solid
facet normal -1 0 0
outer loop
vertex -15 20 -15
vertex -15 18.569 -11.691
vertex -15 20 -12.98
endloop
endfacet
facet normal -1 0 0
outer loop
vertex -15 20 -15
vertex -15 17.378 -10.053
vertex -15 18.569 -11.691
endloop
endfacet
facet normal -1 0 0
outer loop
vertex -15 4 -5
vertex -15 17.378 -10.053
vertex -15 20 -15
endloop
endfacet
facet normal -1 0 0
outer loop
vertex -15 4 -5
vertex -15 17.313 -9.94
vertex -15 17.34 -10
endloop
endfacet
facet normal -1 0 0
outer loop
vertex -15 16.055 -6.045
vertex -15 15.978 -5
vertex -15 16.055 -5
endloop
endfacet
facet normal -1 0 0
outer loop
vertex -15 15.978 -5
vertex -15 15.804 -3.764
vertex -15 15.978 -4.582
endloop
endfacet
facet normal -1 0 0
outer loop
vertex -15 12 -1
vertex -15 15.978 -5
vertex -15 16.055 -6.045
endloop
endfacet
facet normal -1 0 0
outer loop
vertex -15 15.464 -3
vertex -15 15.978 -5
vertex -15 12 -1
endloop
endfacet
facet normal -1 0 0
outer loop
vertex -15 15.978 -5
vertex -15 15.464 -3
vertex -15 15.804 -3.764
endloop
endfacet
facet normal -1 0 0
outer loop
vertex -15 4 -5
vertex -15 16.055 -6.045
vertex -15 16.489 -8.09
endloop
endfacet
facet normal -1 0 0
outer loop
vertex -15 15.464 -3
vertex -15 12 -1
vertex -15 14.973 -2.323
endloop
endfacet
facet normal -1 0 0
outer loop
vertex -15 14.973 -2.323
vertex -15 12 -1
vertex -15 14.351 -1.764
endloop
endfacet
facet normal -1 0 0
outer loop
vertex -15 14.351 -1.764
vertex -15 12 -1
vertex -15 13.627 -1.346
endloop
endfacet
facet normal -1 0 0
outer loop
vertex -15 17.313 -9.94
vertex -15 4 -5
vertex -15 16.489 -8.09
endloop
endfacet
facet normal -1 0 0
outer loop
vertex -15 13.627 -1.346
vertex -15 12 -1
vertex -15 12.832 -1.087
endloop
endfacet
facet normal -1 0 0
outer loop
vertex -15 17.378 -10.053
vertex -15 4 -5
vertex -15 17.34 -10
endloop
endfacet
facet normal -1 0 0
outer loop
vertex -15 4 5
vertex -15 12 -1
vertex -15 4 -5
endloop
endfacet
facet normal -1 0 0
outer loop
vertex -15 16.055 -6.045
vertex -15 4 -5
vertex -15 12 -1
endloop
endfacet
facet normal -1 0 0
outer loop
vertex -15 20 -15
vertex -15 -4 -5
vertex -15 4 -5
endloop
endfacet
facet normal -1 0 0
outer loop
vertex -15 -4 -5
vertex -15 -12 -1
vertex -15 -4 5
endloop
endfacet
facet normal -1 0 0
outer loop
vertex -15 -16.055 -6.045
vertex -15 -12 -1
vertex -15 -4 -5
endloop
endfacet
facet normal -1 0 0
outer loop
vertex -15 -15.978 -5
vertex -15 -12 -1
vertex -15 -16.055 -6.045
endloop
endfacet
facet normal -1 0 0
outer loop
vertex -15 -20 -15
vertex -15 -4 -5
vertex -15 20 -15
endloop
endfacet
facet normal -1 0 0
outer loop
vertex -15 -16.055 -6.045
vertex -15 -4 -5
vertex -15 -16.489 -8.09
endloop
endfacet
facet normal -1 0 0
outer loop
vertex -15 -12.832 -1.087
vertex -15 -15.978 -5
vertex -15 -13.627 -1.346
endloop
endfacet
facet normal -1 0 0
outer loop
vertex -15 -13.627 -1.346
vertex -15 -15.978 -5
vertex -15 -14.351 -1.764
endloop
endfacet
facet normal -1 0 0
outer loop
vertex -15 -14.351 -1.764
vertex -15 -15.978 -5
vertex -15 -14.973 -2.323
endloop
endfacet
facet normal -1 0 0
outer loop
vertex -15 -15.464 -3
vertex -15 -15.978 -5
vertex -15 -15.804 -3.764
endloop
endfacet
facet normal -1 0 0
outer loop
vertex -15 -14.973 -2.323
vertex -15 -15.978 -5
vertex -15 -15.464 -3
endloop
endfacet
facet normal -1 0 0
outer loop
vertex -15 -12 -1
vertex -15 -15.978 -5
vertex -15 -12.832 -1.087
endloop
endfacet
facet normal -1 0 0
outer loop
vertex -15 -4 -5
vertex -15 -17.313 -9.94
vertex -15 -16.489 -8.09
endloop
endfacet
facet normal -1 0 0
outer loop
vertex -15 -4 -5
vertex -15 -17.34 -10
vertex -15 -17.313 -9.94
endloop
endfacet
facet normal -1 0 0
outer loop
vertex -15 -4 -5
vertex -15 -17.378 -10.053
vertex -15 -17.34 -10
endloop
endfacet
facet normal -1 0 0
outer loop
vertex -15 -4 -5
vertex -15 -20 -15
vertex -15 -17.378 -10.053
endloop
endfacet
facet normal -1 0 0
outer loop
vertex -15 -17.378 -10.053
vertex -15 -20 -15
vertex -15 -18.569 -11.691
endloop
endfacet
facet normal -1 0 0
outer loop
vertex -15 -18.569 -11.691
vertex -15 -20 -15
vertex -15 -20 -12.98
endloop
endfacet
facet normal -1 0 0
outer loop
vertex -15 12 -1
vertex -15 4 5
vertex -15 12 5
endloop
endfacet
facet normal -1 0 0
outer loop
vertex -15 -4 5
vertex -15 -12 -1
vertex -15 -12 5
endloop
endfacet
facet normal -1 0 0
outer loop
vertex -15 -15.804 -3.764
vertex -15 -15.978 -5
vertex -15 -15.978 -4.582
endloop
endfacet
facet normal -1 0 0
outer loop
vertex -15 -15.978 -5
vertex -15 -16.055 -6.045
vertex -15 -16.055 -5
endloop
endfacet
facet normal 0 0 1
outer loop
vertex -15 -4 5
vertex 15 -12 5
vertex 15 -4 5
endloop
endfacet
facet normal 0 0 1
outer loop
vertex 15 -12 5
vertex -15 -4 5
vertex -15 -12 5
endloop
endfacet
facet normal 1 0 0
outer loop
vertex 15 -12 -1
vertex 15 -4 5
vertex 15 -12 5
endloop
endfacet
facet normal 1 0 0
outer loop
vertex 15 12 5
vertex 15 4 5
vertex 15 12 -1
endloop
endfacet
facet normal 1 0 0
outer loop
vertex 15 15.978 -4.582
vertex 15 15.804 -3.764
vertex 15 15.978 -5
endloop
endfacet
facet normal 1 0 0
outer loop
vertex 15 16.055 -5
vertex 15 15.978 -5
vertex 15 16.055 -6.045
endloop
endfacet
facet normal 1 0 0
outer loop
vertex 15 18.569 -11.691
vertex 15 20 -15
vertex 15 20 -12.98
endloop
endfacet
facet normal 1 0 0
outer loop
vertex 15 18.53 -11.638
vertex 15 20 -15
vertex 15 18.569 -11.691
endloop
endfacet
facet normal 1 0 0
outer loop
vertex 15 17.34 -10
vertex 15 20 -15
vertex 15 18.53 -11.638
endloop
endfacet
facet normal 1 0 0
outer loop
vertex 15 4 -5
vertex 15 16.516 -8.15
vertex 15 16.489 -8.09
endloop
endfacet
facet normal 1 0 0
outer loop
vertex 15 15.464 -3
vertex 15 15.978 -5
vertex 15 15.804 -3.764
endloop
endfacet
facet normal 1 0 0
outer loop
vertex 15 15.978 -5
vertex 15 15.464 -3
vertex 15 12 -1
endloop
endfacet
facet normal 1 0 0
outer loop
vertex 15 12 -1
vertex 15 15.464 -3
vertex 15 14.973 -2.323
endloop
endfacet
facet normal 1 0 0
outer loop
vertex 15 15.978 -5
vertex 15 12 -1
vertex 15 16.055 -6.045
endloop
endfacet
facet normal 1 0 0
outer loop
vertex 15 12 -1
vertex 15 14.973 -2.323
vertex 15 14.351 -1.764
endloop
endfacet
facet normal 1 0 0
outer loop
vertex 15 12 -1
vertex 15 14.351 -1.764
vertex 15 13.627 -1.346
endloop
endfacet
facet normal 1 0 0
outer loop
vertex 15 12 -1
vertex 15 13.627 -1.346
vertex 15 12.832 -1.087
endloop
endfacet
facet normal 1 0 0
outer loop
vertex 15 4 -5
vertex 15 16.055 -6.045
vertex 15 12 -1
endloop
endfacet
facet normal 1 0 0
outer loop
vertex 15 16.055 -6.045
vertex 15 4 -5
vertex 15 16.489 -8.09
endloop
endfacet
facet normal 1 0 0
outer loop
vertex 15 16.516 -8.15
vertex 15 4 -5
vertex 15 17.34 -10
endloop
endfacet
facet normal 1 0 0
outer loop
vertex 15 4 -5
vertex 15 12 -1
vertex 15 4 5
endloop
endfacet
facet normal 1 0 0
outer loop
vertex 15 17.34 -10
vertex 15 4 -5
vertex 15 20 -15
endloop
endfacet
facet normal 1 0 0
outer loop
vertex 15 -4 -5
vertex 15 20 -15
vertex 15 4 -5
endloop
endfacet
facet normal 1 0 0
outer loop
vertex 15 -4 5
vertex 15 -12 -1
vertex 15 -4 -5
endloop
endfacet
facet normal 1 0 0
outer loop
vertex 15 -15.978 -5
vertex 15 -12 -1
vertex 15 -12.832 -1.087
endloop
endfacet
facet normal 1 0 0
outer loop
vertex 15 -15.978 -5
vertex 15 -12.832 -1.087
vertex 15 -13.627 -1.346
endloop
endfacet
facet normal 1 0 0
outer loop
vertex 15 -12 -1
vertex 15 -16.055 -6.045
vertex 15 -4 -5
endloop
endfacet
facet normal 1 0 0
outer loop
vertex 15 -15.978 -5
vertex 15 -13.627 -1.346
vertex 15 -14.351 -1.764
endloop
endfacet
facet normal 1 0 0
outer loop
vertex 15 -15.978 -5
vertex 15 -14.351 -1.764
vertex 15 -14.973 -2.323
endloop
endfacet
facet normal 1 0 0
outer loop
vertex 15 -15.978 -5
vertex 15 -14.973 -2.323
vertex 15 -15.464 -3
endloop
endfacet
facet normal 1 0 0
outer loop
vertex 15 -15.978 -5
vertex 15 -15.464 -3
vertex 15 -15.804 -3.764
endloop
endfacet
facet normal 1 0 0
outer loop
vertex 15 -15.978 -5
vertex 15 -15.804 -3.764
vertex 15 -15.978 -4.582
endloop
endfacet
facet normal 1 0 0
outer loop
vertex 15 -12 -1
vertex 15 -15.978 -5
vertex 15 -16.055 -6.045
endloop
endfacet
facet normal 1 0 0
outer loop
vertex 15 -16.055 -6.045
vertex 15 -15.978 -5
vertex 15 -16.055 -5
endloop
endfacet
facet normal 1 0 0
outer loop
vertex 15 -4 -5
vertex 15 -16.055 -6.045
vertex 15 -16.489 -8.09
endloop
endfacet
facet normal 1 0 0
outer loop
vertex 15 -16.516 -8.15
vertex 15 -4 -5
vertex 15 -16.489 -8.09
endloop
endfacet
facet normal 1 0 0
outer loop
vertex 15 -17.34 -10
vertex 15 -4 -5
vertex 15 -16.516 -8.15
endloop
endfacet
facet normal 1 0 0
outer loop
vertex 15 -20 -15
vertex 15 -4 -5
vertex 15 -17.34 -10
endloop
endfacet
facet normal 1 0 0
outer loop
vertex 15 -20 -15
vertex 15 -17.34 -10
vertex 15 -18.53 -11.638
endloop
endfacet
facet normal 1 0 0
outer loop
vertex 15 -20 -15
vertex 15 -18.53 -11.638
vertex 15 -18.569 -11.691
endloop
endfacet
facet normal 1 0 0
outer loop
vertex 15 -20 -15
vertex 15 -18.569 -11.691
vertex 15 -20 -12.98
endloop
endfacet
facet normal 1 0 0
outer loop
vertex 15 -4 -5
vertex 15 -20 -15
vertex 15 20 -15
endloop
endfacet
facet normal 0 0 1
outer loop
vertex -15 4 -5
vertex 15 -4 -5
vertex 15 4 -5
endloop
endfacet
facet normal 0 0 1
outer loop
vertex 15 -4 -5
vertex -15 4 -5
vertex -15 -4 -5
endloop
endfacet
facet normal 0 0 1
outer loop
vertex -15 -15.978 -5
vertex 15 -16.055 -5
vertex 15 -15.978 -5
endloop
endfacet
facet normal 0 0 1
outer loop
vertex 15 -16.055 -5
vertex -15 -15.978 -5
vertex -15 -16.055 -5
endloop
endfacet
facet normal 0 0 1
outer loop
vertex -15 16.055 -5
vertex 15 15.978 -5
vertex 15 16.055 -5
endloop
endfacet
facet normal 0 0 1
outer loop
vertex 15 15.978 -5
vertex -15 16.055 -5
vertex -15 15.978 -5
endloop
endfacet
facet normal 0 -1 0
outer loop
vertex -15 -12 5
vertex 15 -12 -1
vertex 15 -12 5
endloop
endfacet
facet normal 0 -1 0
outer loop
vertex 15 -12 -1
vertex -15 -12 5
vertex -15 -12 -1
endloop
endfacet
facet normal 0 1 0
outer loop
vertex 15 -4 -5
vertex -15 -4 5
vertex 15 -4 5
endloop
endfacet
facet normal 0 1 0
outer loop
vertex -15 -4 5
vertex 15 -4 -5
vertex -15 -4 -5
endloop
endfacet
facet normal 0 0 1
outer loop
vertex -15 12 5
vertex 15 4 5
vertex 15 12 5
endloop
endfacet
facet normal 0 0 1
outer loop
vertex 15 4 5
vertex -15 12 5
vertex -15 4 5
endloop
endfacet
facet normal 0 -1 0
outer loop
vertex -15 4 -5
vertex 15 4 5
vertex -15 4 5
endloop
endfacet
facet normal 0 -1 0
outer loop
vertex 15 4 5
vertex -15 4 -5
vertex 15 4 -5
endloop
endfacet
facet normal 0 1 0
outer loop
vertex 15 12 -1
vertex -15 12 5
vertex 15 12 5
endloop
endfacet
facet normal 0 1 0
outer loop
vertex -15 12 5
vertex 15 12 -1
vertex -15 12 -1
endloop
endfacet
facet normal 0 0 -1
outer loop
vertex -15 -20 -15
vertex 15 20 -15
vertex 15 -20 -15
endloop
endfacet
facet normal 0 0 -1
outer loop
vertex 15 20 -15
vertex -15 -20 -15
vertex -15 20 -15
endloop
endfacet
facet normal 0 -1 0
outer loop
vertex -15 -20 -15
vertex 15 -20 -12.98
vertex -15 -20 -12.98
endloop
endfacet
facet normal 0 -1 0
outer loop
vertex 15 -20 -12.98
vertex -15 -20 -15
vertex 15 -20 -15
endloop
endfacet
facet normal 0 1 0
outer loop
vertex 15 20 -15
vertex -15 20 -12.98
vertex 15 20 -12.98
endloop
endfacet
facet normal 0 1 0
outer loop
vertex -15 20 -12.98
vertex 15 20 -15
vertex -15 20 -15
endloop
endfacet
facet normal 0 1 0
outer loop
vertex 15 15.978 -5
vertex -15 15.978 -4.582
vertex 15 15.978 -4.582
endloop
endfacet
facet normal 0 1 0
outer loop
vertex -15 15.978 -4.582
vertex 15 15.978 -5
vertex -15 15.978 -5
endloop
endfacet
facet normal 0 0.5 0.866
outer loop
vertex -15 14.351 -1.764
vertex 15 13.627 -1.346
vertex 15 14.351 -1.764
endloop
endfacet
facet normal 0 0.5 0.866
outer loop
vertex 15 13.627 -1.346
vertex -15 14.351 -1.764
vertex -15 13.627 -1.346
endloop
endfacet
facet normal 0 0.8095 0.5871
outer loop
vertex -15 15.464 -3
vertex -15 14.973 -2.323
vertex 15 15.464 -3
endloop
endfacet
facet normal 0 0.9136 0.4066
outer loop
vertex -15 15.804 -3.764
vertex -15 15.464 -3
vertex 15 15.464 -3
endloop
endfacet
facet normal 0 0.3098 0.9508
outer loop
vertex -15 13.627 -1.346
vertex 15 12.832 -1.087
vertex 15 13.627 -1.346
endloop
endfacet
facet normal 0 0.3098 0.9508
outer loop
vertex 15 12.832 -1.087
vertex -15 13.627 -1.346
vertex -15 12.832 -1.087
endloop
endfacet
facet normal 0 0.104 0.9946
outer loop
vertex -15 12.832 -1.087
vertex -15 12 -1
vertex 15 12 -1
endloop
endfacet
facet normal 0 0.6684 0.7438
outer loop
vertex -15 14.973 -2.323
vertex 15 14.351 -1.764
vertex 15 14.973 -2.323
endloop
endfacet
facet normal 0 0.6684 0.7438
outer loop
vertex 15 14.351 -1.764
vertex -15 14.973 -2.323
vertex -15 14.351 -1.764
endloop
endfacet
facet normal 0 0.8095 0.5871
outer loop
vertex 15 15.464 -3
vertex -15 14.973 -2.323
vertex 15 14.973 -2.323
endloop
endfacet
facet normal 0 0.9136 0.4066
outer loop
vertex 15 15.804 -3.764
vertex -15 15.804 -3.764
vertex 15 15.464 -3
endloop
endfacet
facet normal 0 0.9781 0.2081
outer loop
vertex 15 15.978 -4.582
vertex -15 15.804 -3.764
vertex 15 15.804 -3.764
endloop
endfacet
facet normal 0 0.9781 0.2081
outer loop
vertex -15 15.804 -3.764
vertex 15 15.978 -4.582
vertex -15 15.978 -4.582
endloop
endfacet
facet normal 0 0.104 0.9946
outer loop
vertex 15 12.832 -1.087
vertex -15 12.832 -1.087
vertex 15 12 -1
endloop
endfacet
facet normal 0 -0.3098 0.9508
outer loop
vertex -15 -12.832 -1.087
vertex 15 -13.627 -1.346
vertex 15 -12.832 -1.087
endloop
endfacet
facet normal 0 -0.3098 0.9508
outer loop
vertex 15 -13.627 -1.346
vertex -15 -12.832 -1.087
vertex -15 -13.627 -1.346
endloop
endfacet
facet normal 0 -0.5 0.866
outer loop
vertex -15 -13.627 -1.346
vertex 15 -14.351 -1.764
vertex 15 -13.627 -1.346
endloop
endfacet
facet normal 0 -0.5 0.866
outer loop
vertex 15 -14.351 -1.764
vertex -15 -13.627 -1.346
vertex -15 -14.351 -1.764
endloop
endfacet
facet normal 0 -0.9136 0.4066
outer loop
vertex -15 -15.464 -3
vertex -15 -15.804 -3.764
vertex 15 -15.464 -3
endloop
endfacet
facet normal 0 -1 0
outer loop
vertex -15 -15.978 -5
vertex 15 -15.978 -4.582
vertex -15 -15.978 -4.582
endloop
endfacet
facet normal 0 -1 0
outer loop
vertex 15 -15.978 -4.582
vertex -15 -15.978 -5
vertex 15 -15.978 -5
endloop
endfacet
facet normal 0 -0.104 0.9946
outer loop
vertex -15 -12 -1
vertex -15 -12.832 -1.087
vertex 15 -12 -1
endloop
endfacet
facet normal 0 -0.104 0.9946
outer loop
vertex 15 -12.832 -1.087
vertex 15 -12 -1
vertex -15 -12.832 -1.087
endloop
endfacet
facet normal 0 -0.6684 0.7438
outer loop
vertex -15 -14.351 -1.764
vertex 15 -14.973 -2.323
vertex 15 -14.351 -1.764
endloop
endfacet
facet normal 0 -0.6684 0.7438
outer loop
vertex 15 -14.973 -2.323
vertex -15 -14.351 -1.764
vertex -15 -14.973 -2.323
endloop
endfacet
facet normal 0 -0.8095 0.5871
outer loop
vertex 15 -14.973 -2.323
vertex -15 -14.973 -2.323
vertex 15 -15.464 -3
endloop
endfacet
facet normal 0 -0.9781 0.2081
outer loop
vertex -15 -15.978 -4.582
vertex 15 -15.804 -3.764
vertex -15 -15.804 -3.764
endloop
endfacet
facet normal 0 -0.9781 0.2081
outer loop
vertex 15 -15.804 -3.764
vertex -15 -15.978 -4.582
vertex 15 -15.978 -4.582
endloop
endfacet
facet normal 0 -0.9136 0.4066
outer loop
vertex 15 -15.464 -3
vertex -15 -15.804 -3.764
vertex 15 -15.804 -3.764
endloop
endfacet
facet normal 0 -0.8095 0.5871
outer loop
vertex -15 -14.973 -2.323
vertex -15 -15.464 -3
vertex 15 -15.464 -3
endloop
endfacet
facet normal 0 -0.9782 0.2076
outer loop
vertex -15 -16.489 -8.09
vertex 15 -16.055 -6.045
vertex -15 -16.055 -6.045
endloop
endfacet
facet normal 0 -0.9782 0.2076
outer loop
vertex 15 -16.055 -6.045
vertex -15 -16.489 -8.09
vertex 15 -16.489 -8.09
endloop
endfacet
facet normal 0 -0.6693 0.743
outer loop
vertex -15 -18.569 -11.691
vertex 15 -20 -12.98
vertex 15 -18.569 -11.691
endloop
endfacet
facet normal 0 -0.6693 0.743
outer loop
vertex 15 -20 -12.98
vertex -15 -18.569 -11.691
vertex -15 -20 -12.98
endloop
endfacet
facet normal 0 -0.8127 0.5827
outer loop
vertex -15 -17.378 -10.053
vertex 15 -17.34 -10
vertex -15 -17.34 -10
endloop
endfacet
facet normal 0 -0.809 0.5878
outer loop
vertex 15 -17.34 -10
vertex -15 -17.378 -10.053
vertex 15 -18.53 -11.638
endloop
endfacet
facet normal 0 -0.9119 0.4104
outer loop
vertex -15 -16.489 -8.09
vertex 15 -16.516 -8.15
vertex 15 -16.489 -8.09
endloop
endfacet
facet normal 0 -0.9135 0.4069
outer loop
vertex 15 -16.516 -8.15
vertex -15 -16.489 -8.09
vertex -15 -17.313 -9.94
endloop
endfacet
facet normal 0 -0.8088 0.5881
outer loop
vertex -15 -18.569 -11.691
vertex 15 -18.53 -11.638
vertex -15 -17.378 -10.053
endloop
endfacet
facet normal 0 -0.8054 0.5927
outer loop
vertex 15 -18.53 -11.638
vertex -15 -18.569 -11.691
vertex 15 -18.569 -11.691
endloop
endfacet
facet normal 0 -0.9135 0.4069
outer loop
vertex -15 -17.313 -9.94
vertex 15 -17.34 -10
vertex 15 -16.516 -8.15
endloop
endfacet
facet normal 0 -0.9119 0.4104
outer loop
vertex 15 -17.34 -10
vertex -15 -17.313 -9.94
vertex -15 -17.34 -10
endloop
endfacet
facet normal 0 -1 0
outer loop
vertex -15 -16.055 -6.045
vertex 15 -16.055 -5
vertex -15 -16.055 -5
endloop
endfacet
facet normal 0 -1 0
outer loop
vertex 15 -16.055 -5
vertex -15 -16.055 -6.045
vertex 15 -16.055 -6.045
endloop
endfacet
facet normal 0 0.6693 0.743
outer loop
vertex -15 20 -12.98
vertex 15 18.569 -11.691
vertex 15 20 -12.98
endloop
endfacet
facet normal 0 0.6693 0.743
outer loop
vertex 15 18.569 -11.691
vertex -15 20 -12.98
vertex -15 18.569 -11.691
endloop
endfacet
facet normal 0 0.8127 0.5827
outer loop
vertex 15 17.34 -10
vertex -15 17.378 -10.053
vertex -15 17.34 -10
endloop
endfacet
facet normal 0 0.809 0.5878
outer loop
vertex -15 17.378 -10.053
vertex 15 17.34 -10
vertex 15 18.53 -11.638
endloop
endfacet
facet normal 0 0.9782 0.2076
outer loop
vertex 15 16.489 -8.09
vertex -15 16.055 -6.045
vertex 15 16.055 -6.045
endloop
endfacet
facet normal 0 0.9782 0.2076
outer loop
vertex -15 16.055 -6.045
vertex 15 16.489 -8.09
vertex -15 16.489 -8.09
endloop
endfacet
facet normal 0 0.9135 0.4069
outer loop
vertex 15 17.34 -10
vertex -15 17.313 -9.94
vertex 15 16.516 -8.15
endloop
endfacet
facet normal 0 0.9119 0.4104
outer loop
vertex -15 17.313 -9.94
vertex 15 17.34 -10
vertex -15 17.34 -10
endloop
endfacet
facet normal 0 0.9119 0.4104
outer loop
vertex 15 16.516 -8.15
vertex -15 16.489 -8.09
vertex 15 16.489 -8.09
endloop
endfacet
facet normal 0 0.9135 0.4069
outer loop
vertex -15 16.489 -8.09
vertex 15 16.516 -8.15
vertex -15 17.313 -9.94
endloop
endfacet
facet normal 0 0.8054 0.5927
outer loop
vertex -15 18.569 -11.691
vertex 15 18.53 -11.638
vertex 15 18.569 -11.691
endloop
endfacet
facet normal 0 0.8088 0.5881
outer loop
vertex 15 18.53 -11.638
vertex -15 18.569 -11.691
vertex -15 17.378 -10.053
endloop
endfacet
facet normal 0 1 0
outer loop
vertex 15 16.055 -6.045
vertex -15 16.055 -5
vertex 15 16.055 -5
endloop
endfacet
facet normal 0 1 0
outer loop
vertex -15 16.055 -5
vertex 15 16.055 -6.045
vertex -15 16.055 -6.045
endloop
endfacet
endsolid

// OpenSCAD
// Soportes antivibración impresora 3D
// PPF 2016 - Oct
// en mm

// PARAMETRIZACION
dimGripX =30; // Por defecto: 30
dimGripY =8; // Por defecto: 8
dimGripZ =10; // Por defecto: 10

delta=2; // Por defecto: 2

dimBaseX = dimGripX; // Por defecto: 30
dimBaseY = dimGripY * 5; // Por defecto: 8*5=40
dimBaseZ = dimGripZ; // Por defecto: 10

h=dimGripX; 
r=dimGripY/2;

// RENDERIZACION DE LA PIEZA
difference(){

union(){  // Bloque principal (pestañas+base+refuerzos)
// Pestañas de agarre
color("red")
translate ([0,-dimGripY,0])
union(){
cube ([dimGripX, dimGripY, dimGripZ],true); // pestaña 1
translate ([0,2*dimGripY,0])
cube ([dimGripX, dimGripY, dimGripZ],true); // pestaña 2
}

// Base de soporte
color("yellow")
translate ([0,0,-dimGripZ])
cube ([dimBaseX, dimBaseY, dimBaseZ],true);

// Refuerzos
color("yellow")
translate ([0,3*r,-5])
rotate ([0,90,0])
cylinder (h,r=r,$fn=30, center=true); // refuerzo 1

translate ([0,-3*r,-dimGripZ/2])
rotate ([0,90,0])
cylinder (h,r=r,$fn=30, center=true); // refuezo 2
}

// Bordes exteriores que se sustraen del bloque principal
color("blue")
translate ([0,-7*r+delta,-dimGripZ/2])
rotate ([0,90,0])
cylinder (h+delta,r=dimBaseY/4,$fn=30, center=true); // borde 1

color("blue")
translate ([0,7*r-delta,-dimGripZ/2])
rotate ([0,90,0])
cylinder (h+delta,r=dimBaseY/4,$fn=30, center=true); // borde 2
}
